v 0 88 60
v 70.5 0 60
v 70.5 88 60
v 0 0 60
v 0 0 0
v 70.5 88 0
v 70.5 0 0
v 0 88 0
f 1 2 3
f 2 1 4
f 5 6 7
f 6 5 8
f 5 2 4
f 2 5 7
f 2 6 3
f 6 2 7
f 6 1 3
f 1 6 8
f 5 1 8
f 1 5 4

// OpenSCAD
akvarium_delka = 88;
akvarium_tloustka = 70.5;
akvarium_vyska = 60;

//akvarium
color("blue")
cube([akvarium_tloustka, akvarium_delka, akvarium_vyska]);
